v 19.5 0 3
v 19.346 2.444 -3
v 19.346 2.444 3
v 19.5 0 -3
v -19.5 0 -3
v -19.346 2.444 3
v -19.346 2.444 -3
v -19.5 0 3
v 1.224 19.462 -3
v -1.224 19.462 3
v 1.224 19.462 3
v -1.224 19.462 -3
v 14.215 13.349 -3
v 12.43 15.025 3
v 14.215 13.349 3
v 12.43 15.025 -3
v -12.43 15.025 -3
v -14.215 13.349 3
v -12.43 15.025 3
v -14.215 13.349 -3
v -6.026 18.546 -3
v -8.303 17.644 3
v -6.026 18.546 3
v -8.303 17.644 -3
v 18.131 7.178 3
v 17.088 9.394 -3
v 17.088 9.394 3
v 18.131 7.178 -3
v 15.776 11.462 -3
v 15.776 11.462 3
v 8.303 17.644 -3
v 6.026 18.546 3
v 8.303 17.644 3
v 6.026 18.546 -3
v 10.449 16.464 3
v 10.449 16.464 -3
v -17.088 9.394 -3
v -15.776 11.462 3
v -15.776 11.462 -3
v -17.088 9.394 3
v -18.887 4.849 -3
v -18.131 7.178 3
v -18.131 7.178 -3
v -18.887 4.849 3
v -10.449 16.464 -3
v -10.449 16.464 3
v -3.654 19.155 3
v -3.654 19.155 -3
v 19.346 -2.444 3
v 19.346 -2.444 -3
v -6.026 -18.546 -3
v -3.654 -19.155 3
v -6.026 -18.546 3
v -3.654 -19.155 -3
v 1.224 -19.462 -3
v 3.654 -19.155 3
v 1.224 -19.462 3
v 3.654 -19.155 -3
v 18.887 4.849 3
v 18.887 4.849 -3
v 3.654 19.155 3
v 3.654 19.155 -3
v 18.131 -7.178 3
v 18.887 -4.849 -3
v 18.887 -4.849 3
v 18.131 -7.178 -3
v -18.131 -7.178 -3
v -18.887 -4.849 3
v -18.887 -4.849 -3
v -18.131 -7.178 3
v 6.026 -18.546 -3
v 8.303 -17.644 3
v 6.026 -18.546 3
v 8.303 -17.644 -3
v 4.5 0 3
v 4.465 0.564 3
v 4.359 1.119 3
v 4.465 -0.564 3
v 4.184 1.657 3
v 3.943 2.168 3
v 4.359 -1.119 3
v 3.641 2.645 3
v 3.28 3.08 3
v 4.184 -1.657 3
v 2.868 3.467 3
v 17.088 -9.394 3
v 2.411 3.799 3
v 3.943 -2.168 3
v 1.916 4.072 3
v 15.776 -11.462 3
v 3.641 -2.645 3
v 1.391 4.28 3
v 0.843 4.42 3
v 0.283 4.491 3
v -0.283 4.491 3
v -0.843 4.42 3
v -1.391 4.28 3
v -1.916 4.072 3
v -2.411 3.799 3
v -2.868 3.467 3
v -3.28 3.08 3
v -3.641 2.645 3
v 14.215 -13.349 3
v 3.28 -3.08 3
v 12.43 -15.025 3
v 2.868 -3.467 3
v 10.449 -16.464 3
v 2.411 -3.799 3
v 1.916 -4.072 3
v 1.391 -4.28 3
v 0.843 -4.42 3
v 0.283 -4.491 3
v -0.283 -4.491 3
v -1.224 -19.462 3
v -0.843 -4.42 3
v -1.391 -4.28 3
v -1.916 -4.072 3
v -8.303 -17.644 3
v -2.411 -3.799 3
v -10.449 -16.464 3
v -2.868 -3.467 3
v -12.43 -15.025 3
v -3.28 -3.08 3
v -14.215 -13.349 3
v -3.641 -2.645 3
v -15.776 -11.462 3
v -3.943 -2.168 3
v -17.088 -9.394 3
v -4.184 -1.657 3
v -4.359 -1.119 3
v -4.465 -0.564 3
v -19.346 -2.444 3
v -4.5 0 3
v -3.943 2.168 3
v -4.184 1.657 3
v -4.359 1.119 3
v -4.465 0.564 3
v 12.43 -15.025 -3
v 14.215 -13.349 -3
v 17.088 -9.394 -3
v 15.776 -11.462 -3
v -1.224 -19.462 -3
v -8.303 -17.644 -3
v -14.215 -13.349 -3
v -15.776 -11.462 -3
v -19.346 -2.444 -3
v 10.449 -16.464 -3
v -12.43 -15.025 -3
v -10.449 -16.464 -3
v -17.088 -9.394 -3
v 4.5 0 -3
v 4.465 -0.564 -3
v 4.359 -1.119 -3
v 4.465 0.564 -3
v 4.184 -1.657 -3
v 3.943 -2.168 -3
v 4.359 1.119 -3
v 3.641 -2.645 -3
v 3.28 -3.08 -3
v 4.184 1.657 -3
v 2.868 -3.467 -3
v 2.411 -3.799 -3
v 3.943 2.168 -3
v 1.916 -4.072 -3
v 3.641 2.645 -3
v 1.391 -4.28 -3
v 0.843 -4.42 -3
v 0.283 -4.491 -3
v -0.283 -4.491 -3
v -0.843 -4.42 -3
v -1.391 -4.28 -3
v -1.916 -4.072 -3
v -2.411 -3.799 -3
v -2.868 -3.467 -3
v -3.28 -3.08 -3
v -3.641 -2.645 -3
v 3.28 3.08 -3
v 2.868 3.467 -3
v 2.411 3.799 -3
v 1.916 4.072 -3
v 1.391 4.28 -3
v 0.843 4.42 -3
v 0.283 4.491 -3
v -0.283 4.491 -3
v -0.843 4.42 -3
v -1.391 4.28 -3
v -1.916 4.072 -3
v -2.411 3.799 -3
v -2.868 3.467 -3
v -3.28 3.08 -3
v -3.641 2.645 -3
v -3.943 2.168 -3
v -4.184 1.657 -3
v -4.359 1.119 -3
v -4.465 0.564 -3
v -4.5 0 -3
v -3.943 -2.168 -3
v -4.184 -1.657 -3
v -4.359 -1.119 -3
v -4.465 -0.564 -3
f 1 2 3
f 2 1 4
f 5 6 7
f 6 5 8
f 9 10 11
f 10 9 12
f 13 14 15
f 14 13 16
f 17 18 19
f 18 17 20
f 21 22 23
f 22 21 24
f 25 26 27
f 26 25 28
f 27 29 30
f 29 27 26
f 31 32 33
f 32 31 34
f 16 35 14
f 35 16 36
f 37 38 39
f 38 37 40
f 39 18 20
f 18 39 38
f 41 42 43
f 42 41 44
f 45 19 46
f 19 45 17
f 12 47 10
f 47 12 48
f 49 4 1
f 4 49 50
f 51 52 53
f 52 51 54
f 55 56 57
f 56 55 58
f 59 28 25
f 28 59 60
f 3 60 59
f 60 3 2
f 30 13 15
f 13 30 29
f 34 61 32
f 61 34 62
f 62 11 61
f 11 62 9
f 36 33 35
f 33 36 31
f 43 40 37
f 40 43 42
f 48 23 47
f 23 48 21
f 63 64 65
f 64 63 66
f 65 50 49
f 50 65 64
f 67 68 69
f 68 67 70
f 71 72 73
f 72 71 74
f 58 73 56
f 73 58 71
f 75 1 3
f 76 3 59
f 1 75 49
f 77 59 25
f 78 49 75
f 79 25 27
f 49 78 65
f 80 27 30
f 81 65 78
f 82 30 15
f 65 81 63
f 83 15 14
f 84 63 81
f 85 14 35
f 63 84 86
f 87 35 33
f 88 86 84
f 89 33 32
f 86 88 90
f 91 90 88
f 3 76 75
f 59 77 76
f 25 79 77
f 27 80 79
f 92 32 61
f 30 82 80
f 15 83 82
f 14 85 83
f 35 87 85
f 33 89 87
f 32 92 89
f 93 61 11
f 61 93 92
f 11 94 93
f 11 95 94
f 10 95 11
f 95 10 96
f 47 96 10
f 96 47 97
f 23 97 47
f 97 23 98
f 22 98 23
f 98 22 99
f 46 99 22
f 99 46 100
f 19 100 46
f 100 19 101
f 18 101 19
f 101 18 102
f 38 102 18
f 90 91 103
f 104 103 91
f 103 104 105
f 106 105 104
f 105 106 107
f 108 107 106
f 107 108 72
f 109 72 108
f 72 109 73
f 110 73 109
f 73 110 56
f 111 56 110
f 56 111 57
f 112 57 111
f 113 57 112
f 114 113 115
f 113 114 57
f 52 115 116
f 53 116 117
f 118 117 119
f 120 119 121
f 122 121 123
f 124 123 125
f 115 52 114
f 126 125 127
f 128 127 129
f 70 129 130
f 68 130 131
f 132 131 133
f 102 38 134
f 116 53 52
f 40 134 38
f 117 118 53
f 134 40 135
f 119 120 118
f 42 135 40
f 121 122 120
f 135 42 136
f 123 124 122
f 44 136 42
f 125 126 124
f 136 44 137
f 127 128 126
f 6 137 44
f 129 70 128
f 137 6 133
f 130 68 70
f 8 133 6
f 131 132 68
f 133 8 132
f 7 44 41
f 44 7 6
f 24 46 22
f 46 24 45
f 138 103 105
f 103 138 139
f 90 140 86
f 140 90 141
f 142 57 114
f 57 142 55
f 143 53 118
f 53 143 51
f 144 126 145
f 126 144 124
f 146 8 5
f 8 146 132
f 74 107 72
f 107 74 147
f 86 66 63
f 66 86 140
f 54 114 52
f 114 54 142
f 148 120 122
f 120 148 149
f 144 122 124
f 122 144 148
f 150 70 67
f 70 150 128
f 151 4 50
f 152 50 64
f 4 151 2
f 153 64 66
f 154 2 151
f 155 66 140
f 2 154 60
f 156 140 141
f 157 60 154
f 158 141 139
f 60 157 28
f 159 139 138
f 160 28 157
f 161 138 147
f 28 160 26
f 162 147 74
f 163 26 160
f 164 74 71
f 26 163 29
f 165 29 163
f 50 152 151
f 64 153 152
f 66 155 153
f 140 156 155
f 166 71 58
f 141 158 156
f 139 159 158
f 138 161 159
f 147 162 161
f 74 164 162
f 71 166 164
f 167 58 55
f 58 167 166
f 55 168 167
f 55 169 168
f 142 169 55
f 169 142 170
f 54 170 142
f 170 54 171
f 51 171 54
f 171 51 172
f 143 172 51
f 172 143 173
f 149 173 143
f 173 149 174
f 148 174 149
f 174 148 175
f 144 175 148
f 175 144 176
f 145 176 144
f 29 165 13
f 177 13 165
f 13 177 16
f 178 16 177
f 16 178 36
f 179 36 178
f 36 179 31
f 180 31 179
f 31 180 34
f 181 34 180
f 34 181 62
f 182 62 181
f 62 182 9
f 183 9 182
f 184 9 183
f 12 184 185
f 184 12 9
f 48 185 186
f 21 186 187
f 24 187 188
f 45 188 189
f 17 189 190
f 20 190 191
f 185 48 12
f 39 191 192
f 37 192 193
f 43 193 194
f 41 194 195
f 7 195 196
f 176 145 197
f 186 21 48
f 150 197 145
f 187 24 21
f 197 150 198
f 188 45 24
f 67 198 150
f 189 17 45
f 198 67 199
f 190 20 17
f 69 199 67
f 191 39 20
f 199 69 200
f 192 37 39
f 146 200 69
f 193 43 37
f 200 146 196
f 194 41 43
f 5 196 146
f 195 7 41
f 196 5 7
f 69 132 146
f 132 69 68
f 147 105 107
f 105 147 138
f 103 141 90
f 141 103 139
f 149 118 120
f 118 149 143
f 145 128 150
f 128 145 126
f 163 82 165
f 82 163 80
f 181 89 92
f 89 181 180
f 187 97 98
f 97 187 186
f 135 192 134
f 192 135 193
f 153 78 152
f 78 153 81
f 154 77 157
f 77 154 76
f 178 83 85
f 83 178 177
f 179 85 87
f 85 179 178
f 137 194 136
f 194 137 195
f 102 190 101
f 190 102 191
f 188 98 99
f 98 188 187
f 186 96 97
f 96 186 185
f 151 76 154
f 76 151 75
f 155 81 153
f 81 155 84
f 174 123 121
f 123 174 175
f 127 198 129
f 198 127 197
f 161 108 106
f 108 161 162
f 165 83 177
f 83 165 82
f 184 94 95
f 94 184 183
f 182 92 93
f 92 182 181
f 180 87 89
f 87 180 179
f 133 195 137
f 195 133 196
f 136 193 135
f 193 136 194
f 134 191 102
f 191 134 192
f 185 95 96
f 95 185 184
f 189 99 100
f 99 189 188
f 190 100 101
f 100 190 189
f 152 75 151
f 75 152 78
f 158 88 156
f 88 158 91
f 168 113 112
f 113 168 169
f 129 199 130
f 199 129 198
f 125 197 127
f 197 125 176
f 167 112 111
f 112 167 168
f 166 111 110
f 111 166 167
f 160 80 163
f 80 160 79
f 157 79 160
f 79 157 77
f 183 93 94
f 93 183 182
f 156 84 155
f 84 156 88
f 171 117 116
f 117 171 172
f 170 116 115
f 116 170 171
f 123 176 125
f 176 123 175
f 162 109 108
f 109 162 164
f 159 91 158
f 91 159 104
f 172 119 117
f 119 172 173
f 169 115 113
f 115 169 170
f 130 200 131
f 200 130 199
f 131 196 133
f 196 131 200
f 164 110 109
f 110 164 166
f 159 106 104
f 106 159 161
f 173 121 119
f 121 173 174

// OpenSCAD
$fn = 50;


difference() {
	union() {
		translate(v = [0, 0, -3.0000000000]) {
			cylinder(h = 6, r = 19.5000000000);
		}
	}
	union() {
		translate(v = [0, 0, -100.0000000000]) {
			cylinder(h = 200, r = 4.5000000000);
		}
	}
}
